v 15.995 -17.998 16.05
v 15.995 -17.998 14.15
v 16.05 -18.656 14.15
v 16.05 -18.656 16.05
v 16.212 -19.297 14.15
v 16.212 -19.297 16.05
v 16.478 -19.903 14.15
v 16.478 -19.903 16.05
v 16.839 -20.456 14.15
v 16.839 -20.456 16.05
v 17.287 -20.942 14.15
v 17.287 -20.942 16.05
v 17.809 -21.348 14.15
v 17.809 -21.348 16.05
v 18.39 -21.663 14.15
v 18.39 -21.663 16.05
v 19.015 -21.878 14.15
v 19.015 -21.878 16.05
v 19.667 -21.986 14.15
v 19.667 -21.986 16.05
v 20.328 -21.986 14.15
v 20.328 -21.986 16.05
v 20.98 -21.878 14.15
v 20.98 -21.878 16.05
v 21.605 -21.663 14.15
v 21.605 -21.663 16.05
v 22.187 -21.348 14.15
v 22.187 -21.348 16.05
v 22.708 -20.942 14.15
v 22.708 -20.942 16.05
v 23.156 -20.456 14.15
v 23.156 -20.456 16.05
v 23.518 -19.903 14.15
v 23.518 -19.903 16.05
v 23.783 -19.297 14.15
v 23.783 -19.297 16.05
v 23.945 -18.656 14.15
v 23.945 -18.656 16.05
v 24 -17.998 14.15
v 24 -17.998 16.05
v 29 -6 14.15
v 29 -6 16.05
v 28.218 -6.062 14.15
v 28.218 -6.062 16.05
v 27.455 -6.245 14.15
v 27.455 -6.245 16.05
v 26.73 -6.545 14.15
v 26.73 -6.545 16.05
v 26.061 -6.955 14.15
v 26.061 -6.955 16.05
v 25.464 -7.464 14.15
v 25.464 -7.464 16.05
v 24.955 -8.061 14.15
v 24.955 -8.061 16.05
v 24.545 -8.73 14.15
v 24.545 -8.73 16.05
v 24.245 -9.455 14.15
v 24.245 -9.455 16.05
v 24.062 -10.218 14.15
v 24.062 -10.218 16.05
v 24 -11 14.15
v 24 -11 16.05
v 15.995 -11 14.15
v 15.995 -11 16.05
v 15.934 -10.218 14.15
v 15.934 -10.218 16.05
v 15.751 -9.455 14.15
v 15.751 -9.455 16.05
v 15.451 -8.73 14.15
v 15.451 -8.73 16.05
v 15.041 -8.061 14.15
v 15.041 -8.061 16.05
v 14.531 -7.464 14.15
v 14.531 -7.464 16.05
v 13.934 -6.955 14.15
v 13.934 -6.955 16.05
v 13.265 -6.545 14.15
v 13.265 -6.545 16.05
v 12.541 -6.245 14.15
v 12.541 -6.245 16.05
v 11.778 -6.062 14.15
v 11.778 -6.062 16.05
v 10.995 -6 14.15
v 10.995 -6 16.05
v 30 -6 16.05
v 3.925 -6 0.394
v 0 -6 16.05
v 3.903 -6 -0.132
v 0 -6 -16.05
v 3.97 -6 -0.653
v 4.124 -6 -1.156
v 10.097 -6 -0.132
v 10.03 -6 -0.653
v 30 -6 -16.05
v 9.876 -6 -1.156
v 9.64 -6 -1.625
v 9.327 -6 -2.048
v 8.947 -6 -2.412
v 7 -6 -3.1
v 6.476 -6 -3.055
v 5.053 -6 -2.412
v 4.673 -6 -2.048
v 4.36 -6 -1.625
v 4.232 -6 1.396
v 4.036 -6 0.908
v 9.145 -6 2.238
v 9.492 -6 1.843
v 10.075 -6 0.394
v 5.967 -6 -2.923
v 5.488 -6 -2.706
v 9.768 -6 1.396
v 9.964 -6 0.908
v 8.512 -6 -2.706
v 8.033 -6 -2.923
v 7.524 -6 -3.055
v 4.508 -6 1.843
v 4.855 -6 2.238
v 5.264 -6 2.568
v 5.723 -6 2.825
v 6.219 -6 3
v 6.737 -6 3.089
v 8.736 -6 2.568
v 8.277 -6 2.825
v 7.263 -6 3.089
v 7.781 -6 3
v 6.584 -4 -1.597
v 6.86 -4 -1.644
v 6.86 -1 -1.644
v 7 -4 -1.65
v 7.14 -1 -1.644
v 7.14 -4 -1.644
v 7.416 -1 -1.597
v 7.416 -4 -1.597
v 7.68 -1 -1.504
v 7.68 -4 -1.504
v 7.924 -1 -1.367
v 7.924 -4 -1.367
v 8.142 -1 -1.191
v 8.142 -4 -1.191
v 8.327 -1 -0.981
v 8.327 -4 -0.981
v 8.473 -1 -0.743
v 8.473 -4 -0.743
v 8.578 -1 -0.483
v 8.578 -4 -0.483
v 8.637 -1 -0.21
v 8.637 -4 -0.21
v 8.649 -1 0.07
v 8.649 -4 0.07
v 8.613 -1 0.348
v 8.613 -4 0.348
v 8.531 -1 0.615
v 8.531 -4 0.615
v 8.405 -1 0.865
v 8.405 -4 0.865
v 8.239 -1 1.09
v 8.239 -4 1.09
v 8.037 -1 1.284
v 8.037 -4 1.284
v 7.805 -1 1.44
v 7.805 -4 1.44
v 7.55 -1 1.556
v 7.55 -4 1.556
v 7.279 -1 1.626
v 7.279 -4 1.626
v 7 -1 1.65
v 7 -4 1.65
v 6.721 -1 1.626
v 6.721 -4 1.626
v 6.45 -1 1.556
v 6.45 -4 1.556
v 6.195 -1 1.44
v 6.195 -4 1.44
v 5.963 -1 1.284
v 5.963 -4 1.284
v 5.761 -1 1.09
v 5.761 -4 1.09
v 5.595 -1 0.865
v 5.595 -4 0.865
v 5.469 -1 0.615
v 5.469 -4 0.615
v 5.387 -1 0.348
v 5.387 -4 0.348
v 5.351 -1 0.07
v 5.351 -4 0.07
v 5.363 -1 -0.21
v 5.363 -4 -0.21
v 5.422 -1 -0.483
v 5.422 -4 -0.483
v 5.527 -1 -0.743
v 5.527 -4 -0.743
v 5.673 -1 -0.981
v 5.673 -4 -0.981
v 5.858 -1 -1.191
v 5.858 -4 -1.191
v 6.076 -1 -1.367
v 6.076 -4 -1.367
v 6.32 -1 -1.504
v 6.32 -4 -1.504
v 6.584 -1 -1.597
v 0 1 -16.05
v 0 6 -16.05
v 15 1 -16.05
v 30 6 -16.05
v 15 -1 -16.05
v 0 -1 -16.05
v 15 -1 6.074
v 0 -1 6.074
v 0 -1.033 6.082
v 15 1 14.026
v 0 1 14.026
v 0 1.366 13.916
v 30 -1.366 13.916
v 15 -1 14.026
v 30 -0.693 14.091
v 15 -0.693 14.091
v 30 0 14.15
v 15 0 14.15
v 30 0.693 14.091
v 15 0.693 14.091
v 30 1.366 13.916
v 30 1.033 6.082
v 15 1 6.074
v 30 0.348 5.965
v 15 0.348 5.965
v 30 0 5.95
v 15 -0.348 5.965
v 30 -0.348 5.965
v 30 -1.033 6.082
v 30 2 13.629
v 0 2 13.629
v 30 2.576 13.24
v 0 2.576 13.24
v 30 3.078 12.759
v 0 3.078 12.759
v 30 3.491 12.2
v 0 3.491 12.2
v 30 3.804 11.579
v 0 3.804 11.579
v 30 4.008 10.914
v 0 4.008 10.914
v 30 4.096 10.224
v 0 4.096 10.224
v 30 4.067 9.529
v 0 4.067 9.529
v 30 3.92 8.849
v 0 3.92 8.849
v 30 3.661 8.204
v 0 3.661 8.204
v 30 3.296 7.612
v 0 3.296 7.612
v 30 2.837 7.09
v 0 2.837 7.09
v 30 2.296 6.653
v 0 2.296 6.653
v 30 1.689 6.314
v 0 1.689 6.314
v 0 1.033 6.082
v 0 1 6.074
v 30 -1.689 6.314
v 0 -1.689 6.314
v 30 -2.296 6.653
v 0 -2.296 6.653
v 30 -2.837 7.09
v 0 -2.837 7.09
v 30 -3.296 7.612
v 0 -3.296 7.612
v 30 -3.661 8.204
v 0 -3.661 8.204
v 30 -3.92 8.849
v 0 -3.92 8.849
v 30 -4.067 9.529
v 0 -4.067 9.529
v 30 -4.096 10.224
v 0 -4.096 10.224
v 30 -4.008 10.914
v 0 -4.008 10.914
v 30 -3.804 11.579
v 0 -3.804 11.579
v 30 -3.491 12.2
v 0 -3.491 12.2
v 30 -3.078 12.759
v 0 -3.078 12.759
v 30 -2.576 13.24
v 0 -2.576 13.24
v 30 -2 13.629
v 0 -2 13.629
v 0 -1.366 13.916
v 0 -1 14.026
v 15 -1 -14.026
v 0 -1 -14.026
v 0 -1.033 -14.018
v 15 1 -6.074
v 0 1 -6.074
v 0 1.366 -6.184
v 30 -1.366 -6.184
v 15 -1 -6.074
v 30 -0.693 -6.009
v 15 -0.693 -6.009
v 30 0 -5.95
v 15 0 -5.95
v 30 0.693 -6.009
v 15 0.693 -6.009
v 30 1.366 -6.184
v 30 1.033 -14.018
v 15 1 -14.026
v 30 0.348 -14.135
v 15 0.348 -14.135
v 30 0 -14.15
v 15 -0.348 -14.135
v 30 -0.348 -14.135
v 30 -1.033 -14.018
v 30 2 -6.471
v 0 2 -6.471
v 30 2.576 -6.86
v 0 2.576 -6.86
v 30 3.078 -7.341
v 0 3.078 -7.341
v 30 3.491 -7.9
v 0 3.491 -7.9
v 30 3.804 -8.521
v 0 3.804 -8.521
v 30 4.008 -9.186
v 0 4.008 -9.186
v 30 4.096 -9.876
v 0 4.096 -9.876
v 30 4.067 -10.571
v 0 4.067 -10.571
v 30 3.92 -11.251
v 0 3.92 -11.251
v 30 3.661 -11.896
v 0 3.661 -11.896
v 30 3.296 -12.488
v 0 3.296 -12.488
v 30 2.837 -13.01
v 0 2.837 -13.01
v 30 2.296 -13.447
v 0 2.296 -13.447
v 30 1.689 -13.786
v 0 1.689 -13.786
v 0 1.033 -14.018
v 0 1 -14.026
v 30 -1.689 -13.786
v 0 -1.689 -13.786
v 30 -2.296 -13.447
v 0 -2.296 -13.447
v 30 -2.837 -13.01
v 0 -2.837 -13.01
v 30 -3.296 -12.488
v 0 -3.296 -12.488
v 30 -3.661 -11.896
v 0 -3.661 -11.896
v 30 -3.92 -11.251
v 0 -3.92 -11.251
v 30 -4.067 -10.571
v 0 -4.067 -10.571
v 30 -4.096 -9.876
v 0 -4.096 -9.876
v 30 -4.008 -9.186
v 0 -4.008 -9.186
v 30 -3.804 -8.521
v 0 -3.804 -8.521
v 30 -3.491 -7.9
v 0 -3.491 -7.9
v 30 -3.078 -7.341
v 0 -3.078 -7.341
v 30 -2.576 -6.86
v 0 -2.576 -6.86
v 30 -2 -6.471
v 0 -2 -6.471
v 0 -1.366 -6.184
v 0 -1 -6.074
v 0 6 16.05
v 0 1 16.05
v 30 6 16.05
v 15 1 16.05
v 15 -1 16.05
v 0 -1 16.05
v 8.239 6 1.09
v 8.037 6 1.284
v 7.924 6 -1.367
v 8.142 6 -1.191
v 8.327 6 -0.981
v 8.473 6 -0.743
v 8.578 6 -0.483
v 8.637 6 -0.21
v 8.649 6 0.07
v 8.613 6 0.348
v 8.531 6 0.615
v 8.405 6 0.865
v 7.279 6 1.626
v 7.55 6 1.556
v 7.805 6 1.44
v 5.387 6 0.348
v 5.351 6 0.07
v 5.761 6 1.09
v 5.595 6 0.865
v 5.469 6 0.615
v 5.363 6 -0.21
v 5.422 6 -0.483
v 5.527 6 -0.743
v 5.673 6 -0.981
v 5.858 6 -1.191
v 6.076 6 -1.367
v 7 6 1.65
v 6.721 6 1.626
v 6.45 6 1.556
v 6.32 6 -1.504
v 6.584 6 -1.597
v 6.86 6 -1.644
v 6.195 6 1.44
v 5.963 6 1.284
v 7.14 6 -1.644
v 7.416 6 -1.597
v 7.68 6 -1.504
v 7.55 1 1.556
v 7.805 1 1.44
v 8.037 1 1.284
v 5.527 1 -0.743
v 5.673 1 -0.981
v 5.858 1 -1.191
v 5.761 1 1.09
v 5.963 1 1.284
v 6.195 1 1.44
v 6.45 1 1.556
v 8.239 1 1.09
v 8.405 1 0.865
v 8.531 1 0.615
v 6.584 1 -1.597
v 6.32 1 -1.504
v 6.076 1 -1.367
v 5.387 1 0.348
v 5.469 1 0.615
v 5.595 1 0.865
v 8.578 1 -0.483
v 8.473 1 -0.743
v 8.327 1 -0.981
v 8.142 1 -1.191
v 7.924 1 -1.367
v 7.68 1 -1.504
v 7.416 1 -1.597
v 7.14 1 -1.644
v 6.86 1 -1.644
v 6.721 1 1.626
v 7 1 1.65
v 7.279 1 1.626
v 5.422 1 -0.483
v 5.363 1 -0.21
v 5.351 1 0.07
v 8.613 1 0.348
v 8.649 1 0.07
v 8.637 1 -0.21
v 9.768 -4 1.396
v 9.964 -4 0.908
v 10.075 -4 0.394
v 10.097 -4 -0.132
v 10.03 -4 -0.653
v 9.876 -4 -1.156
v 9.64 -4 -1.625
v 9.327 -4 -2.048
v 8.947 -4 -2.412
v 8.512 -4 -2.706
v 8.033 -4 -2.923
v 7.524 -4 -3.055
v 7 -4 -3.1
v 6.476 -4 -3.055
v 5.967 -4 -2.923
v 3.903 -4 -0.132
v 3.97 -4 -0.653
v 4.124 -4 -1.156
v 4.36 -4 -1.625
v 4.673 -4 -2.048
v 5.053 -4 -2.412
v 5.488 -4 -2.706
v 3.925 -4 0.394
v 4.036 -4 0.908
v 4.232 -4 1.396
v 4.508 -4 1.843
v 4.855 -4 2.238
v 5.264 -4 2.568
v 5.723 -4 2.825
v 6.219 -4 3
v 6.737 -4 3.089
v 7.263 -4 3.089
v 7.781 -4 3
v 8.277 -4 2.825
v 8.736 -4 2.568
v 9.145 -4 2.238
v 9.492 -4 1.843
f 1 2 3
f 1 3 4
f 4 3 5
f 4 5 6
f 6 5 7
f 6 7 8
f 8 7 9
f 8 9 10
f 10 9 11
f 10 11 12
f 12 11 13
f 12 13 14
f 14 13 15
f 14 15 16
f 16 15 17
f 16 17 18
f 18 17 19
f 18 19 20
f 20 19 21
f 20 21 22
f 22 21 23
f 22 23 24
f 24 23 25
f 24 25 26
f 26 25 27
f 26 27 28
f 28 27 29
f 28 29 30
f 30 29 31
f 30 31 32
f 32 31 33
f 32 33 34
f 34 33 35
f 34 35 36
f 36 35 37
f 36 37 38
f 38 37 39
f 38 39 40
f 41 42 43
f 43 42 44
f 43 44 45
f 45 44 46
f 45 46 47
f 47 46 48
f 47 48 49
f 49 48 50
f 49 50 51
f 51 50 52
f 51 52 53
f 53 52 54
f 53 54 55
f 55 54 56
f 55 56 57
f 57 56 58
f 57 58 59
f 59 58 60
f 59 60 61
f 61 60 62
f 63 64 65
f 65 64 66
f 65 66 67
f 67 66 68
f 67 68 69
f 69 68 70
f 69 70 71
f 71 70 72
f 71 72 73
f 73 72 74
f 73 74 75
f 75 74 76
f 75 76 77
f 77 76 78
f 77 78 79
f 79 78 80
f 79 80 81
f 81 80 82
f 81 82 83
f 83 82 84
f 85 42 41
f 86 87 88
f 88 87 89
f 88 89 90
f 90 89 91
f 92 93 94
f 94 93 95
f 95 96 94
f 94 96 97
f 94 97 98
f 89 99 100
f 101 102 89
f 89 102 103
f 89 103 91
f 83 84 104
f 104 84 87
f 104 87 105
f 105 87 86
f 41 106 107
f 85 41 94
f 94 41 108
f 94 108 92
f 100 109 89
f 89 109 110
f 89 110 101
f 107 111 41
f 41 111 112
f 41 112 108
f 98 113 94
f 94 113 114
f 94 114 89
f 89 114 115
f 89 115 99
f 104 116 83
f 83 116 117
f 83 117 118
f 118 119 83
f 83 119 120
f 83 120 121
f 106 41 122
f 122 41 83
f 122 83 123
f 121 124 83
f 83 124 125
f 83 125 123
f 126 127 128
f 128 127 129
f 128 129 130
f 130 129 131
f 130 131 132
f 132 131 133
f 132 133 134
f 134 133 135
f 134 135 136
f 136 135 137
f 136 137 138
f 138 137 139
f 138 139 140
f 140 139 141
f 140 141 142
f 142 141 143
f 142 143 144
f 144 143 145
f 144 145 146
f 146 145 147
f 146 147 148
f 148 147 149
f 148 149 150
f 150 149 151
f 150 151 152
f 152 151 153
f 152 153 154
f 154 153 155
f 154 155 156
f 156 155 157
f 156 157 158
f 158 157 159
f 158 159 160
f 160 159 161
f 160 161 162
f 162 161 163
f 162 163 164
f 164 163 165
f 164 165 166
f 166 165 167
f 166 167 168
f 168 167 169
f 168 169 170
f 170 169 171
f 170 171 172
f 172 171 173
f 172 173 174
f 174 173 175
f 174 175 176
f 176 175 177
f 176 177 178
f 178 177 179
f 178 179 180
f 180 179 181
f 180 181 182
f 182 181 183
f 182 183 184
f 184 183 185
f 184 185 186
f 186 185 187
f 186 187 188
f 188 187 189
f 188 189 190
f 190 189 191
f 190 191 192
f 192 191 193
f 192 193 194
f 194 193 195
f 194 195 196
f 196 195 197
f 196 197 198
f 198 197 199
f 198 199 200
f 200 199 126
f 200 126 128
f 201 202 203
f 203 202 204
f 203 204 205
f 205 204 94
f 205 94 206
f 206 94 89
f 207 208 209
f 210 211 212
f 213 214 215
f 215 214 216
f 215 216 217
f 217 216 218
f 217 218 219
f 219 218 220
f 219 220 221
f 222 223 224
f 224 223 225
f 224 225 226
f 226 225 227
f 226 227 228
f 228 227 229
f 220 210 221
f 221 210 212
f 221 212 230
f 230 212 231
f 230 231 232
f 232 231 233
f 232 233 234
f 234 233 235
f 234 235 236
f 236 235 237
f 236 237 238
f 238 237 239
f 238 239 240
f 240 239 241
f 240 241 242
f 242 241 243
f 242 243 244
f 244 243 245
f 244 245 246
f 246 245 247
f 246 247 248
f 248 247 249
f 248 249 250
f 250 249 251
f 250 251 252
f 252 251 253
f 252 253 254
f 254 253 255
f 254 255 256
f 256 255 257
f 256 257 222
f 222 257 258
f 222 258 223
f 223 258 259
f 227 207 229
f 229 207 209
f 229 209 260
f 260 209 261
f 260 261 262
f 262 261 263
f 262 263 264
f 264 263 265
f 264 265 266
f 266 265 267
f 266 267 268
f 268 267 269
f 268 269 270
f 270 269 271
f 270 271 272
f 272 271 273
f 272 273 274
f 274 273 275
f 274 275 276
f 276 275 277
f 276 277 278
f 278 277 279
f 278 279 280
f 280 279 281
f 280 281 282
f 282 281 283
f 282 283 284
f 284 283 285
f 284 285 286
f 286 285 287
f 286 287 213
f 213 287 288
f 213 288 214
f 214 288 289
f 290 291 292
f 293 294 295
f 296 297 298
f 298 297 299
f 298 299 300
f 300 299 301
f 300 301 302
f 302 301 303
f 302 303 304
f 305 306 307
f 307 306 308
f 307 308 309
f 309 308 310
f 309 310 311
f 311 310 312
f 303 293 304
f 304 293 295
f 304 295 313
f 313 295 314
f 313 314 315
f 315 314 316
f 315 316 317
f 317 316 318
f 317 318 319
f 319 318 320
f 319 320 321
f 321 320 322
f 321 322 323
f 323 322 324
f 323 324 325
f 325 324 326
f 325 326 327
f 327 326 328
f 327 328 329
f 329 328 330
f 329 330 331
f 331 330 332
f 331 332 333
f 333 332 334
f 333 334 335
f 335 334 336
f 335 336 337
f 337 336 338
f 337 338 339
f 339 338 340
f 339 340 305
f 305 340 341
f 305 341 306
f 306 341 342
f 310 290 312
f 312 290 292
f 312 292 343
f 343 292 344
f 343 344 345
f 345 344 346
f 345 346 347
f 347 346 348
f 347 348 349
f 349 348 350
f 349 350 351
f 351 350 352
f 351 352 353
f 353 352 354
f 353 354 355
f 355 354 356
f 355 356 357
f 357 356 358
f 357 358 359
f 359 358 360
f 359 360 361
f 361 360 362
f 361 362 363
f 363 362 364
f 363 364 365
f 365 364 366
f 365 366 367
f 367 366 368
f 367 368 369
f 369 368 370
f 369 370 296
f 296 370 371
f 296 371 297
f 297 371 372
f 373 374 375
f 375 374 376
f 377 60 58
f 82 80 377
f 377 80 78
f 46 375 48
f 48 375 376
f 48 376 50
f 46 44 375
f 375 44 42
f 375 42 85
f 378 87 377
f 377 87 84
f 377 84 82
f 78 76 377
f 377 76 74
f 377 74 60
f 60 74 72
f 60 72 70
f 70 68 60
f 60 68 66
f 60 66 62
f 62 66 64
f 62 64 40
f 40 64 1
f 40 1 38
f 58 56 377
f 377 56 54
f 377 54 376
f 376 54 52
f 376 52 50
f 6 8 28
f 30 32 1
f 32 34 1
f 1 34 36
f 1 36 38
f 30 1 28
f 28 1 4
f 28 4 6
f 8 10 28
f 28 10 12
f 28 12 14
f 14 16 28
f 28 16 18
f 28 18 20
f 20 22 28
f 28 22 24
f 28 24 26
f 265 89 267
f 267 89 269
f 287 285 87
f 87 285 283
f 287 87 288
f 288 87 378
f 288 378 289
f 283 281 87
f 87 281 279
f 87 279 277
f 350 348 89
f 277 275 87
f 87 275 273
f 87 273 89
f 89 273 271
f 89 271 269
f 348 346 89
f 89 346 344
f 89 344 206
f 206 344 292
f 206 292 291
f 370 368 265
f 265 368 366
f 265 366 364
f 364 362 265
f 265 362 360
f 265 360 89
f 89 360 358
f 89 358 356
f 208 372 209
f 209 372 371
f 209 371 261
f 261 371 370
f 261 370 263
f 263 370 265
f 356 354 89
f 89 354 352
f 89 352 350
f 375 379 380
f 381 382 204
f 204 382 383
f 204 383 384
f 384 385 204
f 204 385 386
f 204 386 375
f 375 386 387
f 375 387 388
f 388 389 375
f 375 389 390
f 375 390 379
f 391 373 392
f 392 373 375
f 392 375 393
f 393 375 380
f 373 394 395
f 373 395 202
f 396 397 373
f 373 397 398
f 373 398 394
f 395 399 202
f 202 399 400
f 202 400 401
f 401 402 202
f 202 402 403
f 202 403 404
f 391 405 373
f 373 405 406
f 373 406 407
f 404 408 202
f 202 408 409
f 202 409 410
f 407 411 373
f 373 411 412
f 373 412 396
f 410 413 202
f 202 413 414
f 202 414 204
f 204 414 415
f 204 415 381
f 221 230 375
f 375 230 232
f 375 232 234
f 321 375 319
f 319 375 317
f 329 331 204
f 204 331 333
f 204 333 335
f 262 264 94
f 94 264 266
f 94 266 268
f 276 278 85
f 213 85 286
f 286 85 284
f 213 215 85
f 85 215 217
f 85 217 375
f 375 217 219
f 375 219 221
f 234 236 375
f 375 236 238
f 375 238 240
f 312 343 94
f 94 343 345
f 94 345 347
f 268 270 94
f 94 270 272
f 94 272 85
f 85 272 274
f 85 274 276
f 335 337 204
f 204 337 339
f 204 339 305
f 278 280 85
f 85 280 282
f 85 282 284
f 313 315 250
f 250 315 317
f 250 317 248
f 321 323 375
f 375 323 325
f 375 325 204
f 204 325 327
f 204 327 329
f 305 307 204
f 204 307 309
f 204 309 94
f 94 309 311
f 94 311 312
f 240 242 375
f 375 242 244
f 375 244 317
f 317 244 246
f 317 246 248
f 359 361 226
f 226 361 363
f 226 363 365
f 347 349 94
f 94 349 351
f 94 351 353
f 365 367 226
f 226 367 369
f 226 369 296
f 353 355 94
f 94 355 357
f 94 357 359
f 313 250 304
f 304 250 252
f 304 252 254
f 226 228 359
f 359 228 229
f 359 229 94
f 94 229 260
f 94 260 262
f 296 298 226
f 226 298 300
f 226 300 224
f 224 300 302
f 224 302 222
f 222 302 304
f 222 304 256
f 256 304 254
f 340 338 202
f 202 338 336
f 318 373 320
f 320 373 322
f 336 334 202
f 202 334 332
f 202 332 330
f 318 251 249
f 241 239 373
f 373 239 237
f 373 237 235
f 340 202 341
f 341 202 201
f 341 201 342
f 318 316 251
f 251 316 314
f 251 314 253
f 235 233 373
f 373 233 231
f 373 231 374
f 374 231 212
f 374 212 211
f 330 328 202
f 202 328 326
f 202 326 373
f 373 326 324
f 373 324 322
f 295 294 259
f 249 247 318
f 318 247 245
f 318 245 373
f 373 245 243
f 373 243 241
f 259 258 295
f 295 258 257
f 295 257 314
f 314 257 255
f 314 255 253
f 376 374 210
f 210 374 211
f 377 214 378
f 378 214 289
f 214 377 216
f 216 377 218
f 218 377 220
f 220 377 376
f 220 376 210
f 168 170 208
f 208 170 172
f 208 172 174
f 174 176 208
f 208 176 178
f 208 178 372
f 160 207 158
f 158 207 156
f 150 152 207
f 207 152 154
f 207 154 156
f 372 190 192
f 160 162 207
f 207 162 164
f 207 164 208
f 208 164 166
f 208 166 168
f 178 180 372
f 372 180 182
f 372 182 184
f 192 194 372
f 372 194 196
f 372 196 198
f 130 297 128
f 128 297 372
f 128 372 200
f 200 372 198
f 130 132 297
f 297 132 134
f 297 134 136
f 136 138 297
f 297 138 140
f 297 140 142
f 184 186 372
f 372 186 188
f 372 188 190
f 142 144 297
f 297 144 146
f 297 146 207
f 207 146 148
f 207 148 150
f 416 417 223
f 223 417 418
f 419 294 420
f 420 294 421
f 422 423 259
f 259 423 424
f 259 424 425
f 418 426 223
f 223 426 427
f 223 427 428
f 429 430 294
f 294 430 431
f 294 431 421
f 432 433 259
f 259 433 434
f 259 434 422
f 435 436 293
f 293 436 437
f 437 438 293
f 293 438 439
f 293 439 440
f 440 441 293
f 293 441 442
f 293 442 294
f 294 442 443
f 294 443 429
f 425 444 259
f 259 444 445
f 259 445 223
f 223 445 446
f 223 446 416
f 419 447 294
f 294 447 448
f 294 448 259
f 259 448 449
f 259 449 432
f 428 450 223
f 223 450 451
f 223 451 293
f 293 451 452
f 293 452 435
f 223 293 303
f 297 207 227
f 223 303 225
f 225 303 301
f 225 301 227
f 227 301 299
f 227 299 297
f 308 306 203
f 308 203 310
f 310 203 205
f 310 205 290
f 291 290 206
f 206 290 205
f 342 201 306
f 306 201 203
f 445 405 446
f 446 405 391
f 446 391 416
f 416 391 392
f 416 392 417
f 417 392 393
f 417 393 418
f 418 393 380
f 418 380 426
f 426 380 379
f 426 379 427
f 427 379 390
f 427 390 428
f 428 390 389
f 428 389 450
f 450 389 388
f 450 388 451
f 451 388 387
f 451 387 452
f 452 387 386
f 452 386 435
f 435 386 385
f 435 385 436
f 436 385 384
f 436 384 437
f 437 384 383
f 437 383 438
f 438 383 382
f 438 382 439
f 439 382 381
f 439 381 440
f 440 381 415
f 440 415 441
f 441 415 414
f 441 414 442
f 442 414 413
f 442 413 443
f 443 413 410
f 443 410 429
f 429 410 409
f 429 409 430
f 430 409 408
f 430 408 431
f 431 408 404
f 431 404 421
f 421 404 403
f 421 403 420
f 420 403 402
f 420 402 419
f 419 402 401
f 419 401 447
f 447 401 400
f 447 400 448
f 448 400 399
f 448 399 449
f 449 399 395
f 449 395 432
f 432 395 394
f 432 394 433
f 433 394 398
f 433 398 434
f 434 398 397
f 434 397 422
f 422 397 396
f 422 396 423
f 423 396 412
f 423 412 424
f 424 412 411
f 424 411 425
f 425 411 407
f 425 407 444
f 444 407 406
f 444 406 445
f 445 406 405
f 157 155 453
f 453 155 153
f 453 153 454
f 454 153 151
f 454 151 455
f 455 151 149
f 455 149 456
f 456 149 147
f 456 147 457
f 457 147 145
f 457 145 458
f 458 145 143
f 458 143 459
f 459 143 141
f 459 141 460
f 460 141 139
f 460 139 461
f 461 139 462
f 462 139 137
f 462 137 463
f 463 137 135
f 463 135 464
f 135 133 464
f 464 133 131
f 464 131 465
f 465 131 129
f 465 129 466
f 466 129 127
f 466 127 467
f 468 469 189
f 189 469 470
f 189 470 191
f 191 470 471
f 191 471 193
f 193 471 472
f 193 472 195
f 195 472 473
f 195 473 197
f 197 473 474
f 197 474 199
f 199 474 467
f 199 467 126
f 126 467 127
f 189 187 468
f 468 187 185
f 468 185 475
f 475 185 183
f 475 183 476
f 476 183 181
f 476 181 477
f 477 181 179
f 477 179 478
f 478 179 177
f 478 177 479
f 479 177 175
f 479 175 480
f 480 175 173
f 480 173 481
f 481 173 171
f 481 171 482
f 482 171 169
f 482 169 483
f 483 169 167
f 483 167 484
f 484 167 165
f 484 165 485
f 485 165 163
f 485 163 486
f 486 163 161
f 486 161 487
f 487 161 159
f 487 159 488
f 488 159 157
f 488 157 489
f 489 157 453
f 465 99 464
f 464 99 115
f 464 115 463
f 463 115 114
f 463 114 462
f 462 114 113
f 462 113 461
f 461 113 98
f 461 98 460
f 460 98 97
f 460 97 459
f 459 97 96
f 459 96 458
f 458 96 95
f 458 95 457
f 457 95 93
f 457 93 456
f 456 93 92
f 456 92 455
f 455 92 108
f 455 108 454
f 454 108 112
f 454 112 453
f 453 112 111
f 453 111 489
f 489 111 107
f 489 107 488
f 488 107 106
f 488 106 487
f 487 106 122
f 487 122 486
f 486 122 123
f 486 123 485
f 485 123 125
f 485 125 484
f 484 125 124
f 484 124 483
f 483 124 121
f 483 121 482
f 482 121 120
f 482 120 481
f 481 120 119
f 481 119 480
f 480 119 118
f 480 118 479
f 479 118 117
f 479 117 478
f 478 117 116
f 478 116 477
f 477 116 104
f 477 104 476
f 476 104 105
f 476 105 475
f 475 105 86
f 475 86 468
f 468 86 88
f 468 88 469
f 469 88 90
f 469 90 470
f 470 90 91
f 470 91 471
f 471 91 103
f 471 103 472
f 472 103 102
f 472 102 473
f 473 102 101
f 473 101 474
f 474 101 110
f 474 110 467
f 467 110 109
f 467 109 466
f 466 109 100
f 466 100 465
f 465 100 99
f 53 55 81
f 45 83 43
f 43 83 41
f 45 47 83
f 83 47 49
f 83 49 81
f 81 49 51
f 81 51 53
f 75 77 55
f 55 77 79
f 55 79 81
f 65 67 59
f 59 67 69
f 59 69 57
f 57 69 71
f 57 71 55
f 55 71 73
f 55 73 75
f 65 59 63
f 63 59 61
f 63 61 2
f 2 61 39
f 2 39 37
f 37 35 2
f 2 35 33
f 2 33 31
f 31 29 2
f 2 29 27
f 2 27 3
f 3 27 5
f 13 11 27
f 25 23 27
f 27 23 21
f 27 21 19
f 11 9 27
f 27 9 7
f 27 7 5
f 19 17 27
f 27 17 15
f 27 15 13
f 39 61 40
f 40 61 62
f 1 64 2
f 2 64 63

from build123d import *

# Parameters (mm, degrees)
CROQUIS1_W              = 32.1
CROQUIS1_H              = 12
CROQUIS1_R              = 4.1
SALIENTE_EXTRUIR1_DEPTH = 30
CROQUIS2_W              = 15
CROQUIS2_H              = 2
CORTAR_EXTRUIR2_DEPTH   = 33
CROQUIS4_R              = 1.65
CORTAR_EXTRUIR3_DEPTH   = 12
CROQUIS5_R              = 3.1
CORTAR_EXTRUIR4_DEPTH   = 2
SALIENTE_EXTRUIR2_DEPTH = 16
REDONDEO1_R             = 5
REDONDEO2_R             = 5
REDONDEO3_RADIUS        = 4.002255821
REDONDEO3_LENGTH        = 1.9


with BuildPart() as part:
    # Croquis1 → Saliente-Extruir1 (new body)
    with BuildSketch(Plane(origin=(0, 0, 0), x_dir=(0, 0, -1), z_dir=(1, 0, 0))):
        Rectangle(CROQUIS1_W, CROQUIS1_H)
        with Locations((-10.05, 0)):
            Circle(CROQUIS1_R, mode=Mode.SUBTRACT)
        with Locations((10.05, 0)):
            Circle(CROQUIS1_R, mode=Mode.SUBTRACT)
    extrude(amount=SALIENTE_EXTRUIR1_DEPTH)

    # Croquis2 → Cortar-Extruir2 (cut)
    with BuildSketch(Plane.XY.offset(16.05)):
        with Locations((7.5, 0)):
            Rectangle(CROQUIS2_W, CROQUIS2_H)
    extrude(amount=-CORTAR_EXTRUIR2_DEPTH, mode=Mode.SUBTRACT)

    # Croquis4 → Cortar-Extruir3 (cut)
    with BuildSketch(Plane(origin=(0, 6, 0), x_dir=(1, 0, 0), z_dir=(0, 1, 0))):
        with Locations(Location((7, 0, 0), (0, 0, 270))):
            Circle(CROQUIS4_R)
    extrude(amount=-CORTAR_EXTRUIR3_DEPTH, mode=Mode.SUBTRACT)

    # Croquis5 → Cortar-Extruir4 (cut)
    with BuildSketch(Plane.XZ.offset(6)):
        with Locations(Location((7, 0, 0), (0, 0, 270))):
            Circle(CROQUIS5_R)
    extrude(amount=-CORTAR_EXTRUIR4_DEPTH, mode=Mode.SUBTRACT)

    # Croquis7 → Saliente-Extruir2 (add)
    with BuildSketch(Plane.XZ.offset(6)):
        Polygon((20, 14.15), (24, 14.15), (24, 16.05), (15.995488358, 16.05), (15.995488358, 14.15), align=None)
    extrude(amount=SALIENTE_EXTRUIR2_DEPTH)

    # Redondeo1
    redondeo1_edges = [part.edges().sort_by_distance(p)[0] for p in [
        (15.995488358, -6, 15.1),
    ]]
    fillet(redondeo1_edges, radius=REDONDEO1_R)

    # Redondeo2
    redondeo2_edges = [part.edges().sort_by_distance(p)[0] for p in [
        (24, -6, 15.1),
    ]]
    fillet(redondeo2_edges, radius=REDONDEO2_R)

    # Redondeo3: full round fillet: the end face becomes a half cylinder, R = half its width
    redondeo3_face = Plane((19.997744179, -22, 15.1), x_dir=(0, 0, 1), z_dir=(0, -1, 0))  # on the end face: x along it, z out of the body
    redondeo3_slab = redondeo3_face.offset(-REDONDEO3_RADIUS / 2) * Box(REDONDEO3_LENGTH, 2 * REDONDEO3_RADIUS, REDONDEO3_RADIUS, mode=Mode.PRIVATE)  # the body's end, R deep
    redondeo3_round = Plane((19.997744179, -17.997744179, 15.1), x_dir=(0, -1, 0), z_dir=(0, 0, 1)) * Cylinder(REDONDEO3_RADIUS, REDONDEO3_LENGTH, mode=Mode.PRIVATE)  # its axis R under the face
    add(redondeo3_slab - redondeo3_round, mode=Mode.SUBTRACT)


solid = part.part
